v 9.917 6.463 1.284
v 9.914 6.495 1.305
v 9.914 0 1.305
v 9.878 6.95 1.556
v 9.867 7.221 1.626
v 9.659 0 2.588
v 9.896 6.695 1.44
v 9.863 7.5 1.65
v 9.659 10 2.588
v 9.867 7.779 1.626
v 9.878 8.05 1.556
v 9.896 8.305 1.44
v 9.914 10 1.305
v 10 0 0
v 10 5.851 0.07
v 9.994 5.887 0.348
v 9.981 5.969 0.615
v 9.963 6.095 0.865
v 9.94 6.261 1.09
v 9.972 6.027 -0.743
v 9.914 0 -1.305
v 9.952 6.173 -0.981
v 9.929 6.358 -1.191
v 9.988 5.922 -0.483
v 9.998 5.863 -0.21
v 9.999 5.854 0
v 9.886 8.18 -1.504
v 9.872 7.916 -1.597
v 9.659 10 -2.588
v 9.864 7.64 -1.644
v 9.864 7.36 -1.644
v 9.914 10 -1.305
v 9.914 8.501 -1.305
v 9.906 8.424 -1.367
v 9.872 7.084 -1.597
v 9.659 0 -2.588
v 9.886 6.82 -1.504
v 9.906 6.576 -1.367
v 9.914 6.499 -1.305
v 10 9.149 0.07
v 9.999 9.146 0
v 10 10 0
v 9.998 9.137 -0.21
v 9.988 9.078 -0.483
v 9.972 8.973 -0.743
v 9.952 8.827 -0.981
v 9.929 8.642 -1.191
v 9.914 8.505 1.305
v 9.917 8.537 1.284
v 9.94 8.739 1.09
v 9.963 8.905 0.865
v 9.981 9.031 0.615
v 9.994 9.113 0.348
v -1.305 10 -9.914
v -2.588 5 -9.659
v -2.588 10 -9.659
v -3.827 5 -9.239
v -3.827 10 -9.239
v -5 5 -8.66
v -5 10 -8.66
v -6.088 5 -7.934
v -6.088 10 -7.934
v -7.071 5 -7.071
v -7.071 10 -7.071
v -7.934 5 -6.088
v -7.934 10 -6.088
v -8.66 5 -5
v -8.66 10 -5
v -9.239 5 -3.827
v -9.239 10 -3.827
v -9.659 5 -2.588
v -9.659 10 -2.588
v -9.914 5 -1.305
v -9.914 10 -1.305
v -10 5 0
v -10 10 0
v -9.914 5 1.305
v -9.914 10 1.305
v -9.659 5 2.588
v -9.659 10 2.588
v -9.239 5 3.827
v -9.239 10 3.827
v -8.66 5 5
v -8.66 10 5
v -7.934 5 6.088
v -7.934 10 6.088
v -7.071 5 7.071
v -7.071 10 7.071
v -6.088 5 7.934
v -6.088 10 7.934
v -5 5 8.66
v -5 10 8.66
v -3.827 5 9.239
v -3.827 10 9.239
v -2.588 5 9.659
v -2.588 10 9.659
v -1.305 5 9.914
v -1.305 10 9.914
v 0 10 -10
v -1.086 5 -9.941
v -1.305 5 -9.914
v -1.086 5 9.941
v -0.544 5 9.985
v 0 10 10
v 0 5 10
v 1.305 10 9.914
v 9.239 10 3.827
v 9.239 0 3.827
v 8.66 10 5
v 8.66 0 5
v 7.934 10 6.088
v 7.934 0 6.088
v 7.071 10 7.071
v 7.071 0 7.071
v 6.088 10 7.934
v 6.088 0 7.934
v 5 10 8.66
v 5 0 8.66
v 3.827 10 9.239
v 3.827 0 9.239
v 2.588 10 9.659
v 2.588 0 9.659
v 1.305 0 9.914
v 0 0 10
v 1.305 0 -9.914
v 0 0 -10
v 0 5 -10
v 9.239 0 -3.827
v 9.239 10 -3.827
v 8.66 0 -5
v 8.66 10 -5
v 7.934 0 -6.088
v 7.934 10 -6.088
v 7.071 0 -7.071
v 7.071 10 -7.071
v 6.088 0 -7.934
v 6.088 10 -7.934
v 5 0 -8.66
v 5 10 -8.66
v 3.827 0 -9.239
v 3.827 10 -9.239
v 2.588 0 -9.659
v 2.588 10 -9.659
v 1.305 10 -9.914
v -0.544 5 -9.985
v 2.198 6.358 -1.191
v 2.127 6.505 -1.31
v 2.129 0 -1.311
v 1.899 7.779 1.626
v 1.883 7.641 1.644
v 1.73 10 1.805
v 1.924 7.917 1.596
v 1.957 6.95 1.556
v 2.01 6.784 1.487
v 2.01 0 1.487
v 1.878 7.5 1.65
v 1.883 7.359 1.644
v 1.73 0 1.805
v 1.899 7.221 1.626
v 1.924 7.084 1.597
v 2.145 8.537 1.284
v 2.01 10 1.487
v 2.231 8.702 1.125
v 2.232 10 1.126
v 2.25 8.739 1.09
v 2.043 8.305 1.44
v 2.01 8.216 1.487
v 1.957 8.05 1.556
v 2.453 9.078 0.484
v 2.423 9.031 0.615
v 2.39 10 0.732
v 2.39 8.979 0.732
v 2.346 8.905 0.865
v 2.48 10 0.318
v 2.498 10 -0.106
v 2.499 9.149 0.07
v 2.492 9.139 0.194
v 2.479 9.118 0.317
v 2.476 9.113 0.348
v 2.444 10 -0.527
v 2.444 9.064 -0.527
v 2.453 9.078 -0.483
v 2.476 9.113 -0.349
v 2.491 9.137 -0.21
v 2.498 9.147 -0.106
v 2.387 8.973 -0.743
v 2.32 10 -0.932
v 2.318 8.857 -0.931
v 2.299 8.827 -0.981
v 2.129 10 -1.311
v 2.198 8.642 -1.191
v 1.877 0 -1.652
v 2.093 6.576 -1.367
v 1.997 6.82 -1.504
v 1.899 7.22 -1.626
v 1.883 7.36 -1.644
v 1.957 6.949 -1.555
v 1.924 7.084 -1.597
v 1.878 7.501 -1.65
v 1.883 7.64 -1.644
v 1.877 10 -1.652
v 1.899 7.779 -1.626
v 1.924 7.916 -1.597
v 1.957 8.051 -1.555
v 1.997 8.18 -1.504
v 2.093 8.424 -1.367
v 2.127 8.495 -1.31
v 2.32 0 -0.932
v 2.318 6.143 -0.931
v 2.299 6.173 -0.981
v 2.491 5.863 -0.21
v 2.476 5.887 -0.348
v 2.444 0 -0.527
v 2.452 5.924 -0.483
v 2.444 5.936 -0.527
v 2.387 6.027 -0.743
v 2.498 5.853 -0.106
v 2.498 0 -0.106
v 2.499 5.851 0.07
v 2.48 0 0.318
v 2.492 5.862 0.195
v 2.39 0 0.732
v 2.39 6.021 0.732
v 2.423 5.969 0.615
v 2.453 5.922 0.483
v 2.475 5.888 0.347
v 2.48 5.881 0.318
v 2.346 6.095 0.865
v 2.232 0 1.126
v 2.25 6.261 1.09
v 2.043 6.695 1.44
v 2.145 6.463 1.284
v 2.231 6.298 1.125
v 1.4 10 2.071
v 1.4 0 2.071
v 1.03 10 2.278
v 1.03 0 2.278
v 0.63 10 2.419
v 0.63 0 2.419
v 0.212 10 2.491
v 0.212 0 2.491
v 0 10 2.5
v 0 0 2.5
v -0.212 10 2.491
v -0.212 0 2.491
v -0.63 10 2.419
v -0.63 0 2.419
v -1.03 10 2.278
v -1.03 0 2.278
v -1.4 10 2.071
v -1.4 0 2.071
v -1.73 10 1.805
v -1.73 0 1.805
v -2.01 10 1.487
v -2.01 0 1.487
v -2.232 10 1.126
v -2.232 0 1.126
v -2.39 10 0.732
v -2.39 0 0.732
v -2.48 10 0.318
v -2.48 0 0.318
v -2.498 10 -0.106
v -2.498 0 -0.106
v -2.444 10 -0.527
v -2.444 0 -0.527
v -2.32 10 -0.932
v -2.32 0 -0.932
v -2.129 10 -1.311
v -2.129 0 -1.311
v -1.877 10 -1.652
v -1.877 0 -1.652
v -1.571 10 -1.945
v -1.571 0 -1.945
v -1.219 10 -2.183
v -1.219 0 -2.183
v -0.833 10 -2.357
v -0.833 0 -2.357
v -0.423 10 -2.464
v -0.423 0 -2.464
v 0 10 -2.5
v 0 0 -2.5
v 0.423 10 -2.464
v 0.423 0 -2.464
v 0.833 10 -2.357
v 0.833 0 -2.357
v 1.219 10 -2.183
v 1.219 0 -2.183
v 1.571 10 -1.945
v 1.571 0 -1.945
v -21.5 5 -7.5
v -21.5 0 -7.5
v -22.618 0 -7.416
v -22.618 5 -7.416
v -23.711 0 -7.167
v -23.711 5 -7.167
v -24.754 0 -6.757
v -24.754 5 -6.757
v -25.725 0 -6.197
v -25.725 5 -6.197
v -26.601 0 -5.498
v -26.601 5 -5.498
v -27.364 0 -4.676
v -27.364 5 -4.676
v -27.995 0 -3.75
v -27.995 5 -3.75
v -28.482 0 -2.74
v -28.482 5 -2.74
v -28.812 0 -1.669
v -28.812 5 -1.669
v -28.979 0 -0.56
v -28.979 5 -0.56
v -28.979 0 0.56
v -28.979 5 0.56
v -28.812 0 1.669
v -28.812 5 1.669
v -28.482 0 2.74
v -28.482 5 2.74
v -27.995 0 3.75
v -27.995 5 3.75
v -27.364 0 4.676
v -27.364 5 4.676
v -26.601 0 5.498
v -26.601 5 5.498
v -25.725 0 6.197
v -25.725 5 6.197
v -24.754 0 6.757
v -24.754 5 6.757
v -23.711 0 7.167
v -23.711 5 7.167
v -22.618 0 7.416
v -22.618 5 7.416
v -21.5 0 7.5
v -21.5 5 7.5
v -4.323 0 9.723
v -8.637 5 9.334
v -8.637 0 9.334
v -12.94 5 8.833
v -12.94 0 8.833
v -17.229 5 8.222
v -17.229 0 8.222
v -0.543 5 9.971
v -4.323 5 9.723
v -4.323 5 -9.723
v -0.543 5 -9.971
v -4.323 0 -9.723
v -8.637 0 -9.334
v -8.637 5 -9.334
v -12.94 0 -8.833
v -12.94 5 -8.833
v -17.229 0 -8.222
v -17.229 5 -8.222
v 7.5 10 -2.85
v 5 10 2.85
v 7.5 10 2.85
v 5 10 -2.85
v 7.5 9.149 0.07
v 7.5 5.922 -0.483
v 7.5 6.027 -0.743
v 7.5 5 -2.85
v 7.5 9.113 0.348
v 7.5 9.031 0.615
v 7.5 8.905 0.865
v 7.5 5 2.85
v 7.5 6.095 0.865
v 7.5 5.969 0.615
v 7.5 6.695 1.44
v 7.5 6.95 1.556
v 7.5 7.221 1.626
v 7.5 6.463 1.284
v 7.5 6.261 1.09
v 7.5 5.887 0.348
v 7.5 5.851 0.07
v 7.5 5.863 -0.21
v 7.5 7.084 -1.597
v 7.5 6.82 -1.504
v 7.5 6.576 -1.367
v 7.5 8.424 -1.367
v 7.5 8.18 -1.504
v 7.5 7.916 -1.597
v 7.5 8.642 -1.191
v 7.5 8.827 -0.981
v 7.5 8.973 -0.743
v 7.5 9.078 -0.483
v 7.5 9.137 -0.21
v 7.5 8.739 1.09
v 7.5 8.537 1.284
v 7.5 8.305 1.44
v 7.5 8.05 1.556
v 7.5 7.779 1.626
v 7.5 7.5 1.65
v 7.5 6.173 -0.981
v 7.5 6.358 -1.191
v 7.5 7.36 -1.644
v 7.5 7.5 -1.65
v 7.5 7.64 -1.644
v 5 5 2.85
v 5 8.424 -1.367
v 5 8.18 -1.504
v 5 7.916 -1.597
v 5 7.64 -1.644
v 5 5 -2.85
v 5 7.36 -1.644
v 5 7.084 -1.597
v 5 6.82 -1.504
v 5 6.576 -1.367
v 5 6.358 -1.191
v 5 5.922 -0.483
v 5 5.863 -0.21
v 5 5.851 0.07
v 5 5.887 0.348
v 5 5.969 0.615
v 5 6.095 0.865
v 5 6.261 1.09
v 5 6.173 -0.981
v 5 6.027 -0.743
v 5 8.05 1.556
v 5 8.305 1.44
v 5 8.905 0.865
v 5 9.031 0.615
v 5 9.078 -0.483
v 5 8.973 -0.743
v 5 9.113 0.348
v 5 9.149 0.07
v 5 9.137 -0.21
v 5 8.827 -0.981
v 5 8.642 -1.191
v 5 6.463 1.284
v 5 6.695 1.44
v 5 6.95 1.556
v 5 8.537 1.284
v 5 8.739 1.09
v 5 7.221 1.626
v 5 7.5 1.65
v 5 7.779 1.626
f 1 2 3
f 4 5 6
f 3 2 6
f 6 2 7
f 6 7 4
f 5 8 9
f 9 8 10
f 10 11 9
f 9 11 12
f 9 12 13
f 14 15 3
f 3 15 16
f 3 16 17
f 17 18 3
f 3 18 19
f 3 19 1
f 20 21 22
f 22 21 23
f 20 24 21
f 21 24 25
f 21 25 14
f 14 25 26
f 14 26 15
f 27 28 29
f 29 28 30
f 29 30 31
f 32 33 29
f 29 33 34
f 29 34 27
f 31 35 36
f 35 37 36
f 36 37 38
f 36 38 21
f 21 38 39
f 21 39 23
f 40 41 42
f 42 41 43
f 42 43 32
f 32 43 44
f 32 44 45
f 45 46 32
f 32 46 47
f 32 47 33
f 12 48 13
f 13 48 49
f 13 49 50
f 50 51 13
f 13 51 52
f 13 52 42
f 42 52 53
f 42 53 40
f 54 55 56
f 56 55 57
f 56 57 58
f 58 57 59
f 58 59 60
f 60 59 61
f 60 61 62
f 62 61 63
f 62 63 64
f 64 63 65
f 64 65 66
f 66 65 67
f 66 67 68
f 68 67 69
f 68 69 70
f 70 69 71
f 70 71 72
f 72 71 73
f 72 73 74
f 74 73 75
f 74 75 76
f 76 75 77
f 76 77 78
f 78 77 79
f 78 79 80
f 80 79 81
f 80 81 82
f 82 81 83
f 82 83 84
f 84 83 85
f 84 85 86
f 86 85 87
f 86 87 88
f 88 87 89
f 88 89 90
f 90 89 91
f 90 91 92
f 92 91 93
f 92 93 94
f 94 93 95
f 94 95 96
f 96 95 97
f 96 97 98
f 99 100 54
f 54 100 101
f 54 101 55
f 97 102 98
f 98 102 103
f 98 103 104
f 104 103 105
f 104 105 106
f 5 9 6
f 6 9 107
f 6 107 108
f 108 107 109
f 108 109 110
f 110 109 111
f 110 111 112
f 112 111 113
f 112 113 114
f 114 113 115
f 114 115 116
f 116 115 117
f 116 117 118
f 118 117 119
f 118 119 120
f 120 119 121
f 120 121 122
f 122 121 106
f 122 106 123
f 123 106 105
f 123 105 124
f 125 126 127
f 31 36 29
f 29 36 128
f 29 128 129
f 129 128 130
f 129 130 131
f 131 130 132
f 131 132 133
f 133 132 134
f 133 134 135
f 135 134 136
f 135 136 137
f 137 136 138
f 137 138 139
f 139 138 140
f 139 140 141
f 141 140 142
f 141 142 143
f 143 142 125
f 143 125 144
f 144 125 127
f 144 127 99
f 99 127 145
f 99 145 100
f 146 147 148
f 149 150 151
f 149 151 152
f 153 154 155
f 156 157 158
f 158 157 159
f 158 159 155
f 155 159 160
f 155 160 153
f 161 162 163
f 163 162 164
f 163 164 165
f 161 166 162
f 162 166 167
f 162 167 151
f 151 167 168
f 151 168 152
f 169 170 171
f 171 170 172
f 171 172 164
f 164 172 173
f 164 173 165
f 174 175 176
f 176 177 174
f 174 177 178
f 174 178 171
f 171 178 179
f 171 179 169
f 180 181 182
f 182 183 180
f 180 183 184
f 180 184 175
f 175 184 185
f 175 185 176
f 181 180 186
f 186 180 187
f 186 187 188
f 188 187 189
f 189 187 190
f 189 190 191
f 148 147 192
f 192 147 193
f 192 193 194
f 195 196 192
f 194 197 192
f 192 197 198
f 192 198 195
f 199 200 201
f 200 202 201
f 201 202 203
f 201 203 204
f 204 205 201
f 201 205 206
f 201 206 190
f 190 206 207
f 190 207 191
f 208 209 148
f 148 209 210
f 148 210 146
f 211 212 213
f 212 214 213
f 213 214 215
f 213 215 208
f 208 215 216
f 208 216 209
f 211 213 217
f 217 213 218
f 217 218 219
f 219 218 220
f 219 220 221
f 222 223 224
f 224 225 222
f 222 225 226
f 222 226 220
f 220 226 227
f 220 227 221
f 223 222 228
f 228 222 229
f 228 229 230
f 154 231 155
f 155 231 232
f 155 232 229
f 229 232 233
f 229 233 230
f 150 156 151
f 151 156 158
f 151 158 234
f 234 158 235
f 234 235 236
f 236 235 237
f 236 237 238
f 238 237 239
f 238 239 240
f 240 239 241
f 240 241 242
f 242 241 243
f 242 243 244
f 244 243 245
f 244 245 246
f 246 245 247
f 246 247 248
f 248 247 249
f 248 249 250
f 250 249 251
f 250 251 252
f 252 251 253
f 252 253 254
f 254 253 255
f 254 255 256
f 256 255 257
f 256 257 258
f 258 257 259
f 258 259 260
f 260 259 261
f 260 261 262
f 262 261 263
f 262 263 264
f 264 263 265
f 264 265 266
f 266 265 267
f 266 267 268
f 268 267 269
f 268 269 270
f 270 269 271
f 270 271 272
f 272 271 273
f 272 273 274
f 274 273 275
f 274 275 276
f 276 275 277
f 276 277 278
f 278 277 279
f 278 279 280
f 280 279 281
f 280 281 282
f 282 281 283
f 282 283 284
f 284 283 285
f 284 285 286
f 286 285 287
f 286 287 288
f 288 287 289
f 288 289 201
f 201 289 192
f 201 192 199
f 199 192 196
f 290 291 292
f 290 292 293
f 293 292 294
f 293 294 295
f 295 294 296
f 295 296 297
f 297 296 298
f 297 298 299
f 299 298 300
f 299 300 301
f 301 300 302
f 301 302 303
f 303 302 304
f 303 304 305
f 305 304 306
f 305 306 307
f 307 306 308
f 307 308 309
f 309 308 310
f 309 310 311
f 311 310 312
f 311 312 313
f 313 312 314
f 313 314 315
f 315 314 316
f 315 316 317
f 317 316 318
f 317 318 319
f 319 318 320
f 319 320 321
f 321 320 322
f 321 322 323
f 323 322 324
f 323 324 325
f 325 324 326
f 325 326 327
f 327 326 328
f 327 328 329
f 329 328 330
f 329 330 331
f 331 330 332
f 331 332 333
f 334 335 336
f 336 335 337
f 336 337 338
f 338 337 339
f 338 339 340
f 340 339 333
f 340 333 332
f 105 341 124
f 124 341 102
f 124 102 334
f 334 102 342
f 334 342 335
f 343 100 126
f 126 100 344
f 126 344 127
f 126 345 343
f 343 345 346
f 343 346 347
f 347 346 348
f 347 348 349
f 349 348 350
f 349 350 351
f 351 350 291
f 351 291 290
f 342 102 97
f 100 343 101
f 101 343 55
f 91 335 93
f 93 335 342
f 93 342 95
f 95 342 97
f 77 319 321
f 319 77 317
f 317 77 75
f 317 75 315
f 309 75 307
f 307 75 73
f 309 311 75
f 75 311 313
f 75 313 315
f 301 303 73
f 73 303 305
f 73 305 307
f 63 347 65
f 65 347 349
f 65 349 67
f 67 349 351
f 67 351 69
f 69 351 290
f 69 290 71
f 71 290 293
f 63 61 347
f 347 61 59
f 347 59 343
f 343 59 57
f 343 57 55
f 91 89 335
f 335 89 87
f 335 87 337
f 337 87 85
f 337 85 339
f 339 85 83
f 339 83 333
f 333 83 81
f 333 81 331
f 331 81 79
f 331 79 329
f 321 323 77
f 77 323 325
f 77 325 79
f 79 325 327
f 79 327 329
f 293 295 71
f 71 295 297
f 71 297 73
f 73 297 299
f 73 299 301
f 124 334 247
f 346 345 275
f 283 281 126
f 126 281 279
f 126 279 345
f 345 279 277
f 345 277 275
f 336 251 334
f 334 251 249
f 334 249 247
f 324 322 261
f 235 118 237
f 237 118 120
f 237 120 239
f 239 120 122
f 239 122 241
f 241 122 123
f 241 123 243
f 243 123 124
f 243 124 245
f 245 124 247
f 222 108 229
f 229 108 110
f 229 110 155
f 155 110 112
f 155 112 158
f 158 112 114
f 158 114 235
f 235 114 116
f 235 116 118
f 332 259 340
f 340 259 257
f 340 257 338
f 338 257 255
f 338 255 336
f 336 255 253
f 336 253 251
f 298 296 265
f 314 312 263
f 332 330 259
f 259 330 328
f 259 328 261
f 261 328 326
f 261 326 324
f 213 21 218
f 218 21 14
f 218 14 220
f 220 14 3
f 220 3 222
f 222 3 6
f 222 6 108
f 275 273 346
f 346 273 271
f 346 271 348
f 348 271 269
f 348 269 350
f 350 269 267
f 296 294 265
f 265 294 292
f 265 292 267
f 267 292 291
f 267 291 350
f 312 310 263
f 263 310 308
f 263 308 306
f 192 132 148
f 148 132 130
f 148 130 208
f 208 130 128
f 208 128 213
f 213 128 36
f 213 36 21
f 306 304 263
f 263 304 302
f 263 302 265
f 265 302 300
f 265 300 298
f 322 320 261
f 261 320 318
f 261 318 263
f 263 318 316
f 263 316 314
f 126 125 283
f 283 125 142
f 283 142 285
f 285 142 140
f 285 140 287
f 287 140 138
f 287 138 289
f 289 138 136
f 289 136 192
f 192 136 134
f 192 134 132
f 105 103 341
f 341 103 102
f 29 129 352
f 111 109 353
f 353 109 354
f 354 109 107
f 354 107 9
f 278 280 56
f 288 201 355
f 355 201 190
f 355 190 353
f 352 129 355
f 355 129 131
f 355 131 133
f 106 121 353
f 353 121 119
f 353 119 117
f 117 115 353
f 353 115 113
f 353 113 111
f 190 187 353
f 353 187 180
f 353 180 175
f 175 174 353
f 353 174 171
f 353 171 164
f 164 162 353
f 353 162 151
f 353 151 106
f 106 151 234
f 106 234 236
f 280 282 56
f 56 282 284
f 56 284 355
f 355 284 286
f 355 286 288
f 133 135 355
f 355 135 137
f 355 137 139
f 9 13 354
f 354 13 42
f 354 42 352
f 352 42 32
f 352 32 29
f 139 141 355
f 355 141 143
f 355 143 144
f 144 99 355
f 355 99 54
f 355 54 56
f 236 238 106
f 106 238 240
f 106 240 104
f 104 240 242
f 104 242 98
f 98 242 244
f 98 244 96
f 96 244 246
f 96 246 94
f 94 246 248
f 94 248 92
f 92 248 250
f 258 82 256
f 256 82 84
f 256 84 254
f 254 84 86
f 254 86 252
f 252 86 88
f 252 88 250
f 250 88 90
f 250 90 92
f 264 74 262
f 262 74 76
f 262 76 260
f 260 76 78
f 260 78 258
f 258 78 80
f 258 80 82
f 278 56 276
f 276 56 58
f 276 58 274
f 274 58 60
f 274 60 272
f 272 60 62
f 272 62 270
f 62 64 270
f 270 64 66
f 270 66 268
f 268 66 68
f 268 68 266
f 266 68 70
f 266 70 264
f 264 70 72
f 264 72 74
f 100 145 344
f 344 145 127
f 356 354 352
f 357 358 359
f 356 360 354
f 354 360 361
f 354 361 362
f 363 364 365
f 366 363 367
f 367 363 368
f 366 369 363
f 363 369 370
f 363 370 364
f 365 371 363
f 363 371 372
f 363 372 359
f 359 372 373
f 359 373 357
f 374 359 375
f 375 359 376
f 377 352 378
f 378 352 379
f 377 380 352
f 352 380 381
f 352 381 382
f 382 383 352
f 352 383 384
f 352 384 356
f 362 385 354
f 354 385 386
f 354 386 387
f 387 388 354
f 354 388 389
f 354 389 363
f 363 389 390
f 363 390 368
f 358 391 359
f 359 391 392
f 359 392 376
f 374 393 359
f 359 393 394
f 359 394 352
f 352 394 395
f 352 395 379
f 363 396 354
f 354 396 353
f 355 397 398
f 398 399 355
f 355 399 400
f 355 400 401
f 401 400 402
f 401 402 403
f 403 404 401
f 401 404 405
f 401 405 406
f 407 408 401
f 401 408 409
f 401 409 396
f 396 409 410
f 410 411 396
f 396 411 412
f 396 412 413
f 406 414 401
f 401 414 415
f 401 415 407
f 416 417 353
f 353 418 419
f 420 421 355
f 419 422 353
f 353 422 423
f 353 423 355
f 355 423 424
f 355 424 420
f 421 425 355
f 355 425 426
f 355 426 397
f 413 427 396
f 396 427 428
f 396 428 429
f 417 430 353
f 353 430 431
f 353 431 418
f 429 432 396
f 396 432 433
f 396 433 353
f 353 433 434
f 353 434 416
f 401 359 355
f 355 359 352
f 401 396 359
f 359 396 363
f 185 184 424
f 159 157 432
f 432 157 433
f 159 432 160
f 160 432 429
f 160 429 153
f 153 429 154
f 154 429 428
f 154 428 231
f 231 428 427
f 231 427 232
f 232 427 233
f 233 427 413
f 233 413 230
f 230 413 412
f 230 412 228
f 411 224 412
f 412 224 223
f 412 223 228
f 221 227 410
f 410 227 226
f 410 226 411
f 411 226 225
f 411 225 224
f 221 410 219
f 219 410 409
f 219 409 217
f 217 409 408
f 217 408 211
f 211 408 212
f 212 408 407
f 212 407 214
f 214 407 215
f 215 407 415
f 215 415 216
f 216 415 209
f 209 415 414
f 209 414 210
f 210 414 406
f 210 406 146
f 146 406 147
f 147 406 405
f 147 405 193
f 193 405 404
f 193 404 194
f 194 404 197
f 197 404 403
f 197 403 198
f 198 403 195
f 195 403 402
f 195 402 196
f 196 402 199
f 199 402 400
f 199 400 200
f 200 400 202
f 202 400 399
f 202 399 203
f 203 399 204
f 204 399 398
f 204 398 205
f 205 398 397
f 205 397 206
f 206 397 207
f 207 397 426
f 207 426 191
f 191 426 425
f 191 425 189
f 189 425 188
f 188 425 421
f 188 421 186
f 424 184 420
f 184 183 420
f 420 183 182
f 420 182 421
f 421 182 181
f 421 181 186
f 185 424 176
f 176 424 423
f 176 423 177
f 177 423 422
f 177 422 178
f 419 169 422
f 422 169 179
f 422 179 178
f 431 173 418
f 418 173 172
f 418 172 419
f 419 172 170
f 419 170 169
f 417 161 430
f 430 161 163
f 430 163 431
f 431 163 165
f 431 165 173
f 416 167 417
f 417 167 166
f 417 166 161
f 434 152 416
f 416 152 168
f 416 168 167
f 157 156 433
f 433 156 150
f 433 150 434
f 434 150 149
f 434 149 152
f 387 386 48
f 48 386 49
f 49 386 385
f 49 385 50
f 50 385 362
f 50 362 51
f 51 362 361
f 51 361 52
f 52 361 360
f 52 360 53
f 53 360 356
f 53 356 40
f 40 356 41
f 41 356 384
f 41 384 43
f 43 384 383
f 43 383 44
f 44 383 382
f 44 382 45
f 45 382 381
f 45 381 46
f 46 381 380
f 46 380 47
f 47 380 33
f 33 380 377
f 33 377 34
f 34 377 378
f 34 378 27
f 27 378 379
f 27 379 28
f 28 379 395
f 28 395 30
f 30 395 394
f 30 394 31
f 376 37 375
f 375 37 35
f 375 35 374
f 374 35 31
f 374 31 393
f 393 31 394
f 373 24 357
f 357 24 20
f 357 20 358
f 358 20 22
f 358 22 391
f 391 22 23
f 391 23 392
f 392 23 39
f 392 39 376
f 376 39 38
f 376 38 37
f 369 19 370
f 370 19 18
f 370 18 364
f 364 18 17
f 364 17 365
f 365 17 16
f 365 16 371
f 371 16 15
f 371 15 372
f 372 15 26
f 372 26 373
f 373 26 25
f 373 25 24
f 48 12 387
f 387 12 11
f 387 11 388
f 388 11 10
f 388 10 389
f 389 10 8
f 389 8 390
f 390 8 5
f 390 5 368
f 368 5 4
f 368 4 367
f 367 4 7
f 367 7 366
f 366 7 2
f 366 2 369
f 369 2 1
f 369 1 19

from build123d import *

# Parameters (mm, degrees)
SKETCH1_R           = 2.5
BOSS_EXTRUDE1_DEPTH = 5
SKETCH2_R           = 10
SKETCH2_R_2         = 2.5
BOSS_EXTRUDE2_DEPTH = 5
SKETCH3_W           = 2.5
SKETCH3_H           = 5.7
CUT_EXTRUDE1_DEPTH  = 5
SKETCH4_R           = 1.65
CUT_EXTRUDE2_DEPTH  = 25


with BuildPart() as part:
    # Sketch1 → Boss-Extrude1 (new body)
    with BuildSketch(Plane(origin=(0, 0, 0), x_dir=(1, 0, 0), z_dir=(0, 1, 0))):
        with BuildLine():
            ThreePointArc((-21.5, -7.5), (-11.330511131, -9.033592317), (-1.086131732, -9.940840903))
            ThreePointArc((-1.086131732, -9.940840903), (-0.543113838, -9.971301197), (0, -10))
            ThreePointArc((0, -10), (10, 0), (0, 10))
            ThreePointArc((0, 10), (-0.543113838, 9.971301197), (-1.086131732, 9.940840903))
            ThreePointArc((-1.086131732, 9.940840903), (-11.330511131, 9.033592317), (-21.5, 7.5))
            ThreePointArc((-21.5, 7.5), (-29, 0), (-21.5, -7.5))
        make_face()
        with Locations(Location((0, 0, 0), (0, 0, 270))):
            Circle(SKETCH1_R, mode=Mode.SUBTRACT)
    extrude(amount=BOSS_EXTRUDE1_DEPTH)

    # Sketch2 → Boss-Extrude2 (add)
    with BuildSketch(Plane(origin=(0, 5, 0), x_dir=(1, 0, 0), z_dir=(0, 1, 0))):
        with Locations(Location((0, 0, 0), (0, 0, 270))):
            Circle(SKETCH2_R)
        with Locations(Location((0, 0, 0), (0, 0, 270))):
            Circle(SKETCH2_R_2, mode=Mode.SUBTRACT)
    extrude(amount=BOSS_EXTRUDE2_DEPTH)

    # Sketch3 → Cut-Extrude1 (cut)
    with BuildSketch(Plane(origin=(0, 10, 0), x_dir=(1, 0, 0), z_dir=(0, 1, 0))):
        with Locations((6.25, 0)):
            Rectangle(SKETCH3_W, SKETCH3_H)
    extrude(amount=-CUT_EXTRUDE1_DEPTH, mode=Mode.SUBTRACT)

    # Sketch4 → Cut-Extrude2 (cut)
    with BuildSketch(Plane(origin=(0, 0, 0), x_dir=(0, 0, -1), z_dir=(1, 0, 0))):
        with Locations(Location((0, 7.5, 0), (0, 0, 180))):
            Circle(SKETCH4_R)
    extrude(amount=CUT_EXTRUDE2_DEPTH, mode=Mode.SUBTRACT)


solid = part.part
